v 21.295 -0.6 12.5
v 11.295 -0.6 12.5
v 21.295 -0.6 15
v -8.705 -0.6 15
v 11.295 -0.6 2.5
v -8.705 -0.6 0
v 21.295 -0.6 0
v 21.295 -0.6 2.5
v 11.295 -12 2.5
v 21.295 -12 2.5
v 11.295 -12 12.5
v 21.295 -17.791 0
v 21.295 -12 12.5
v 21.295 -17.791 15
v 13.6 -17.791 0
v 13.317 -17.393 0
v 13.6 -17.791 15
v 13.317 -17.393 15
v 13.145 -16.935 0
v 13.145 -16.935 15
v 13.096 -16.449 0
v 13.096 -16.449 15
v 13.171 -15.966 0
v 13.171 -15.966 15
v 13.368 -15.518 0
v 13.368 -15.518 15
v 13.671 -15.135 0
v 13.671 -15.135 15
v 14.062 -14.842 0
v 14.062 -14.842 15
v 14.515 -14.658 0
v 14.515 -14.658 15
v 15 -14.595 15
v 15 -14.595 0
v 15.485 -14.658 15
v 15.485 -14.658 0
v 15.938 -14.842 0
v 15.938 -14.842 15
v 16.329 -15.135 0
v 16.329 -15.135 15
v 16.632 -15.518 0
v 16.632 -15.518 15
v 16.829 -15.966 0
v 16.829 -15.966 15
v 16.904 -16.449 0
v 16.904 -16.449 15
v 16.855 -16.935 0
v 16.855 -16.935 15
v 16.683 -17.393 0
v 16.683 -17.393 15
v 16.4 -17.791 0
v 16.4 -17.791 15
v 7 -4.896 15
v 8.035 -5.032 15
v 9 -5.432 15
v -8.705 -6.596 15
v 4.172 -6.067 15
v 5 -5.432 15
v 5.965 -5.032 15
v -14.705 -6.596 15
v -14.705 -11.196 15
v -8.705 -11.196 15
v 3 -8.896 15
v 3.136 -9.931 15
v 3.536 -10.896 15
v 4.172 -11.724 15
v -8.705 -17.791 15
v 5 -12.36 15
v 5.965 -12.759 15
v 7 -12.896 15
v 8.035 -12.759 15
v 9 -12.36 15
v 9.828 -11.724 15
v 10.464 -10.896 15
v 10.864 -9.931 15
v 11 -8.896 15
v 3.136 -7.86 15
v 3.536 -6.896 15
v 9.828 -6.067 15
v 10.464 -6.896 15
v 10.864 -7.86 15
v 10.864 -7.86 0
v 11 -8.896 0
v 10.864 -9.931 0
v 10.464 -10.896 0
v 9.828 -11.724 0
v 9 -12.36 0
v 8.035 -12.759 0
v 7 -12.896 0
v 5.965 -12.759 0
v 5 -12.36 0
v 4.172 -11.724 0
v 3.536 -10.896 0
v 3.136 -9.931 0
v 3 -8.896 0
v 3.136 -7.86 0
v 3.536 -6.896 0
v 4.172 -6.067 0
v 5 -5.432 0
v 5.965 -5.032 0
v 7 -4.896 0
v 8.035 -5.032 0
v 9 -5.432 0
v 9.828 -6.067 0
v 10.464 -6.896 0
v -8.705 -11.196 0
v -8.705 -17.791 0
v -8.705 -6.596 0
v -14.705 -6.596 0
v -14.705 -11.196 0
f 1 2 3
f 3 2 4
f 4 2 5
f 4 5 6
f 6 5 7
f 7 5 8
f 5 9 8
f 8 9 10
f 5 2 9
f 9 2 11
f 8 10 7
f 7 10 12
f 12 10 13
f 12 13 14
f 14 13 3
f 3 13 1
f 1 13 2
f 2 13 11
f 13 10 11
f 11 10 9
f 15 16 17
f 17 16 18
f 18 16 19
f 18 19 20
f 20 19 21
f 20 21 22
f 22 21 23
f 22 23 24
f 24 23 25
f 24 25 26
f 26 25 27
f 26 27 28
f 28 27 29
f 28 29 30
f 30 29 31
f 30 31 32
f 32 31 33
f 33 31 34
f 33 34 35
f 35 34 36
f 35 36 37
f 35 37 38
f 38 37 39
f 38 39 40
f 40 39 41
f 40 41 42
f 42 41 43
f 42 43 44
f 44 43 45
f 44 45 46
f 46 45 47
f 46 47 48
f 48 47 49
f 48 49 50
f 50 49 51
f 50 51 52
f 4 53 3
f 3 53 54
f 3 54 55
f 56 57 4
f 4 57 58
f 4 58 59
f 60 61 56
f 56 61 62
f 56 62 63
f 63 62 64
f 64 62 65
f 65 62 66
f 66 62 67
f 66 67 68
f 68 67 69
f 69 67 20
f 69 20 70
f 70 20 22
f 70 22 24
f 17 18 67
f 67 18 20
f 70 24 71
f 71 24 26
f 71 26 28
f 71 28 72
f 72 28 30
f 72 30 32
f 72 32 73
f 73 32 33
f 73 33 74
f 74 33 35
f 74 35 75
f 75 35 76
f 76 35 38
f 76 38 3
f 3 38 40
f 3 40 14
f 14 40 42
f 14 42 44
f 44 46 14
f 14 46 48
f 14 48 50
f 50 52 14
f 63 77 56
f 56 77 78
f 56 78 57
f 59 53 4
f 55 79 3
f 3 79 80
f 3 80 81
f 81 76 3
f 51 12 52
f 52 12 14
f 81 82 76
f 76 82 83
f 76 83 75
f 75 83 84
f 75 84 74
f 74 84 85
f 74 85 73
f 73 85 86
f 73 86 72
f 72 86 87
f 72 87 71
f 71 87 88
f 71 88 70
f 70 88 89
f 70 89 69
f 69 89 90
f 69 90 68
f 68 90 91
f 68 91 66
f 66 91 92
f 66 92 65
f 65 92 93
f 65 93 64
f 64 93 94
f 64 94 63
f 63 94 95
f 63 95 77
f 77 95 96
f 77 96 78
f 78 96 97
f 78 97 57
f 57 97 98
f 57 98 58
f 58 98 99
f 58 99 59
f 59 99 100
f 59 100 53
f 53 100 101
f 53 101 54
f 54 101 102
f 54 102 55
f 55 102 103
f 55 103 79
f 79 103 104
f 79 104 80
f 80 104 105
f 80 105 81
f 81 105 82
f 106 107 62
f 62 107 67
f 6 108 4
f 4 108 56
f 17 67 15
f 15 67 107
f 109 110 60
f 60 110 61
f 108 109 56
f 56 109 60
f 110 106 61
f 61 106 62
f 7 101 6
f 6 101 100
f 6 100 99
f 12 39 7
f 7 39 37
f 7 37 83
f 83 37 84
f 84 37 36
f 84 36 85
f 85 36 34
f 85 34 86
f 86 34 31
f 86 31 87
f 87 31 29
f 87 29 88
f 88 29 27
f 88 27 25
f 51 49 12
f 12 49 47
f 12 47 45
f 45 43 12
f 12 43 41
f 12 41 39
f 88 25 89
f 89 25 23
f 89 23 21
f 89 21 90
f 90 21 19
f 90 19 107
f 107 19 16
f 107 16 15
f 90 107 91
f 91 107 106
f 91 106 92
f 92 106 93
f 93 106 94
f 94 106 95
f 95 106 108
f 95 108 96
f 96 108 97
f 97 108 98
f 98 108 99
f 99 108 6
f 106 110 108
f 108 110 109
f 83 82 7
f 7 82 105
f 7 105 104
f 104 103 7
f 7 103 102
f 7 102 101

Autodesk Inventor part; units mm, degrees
ref_plane "YZ Plane" through (0, 0, 0) normal (1, 0, 0) x (0, 1, 0)
ref_plane "XZ Plane" through (0, 0, 0) normal (0, 1, 0) x (-1, 0, 0)
ref_plane "XY Plane" through (0, 0, 0) normal (0, 0, 1) x (1, 0, 0)
ref_plane "Work Plane1" through (0, 0, 0) normal (0, 0, 1) x (1, 0, 0)
sketch "Sketch1" plane through (0, 0, 0) normal (0, 0, 1) x (1, 0, 0)
  circle A0 centre (7, -8.8957) radius 4 projected
  circle A1 centre (-2.136, 8.8957) radius 4 construction
  line L0 (-8.905, 18.405) -> (-8.905, 11.3957) construction
  line L1 (-8.905, 11.3957) -> (-14.905, 11.3957) construction
  line L2 (-14.905, 11.3957) -> (-14.905, 6.3957) construction
  line L3 (-14.905, 6.3957) -> (-8.905, 6.3957) construction
  line L4 (-8.905, 6.3957) -> (-8.905, -6.3957) construction
  line L5 (-8.905, -6.3957) -> (-14.905, -6.3957) construction
  line L6 (-14.905, -6.3957) -> (-14.905, -11.3957) construction
  line L7 (-14.905, -11.3957) -> (-8.905, -11.3957) construction
  line L8 (-8.905, -11.3957) -> (-8.905, -18.405) construction
  line L9 (-8.905, -18.405) -> (15, -18.405) construction
  circle A2 centre (15, -16.5) radius 1.905 construction
  line L10 (15, -18.405) -> (34, -18.405) construction
  line L11 (34, 18.405) -> (34, -18.405) construction
  line L12 (34, 18.405) -> (15, 18.405) construction
  circle A3 centre (15, 16.5) radius 1.905 construction
  line L13 (15, 18.405) -> (-8.905, 18.405) construction
  arc A4 (13.5995, 17.7914) -> (16.4005, 17.7914) centre (15, 16.5) ccw construction
  line L14 (13.5995, 17.7914) -> (-8.705, 17.7914) construction
  line L15 (-8.705, 17.7914) -> (-8.705, 11.1957) construction
  line L16 (-8.705, 11.1957) -> (-14.705, 11.1957) construction
  line L17 (-14.705, 11.1957) -> (-14.705, 6.5957) construction
  line L18 (-14.705, 6.5957) -> (-8.705, 6.5957) construction
  line L19 (-8.705, 6.5957) -> (-8.705, 0) construction
  line L20 (-8.705, 0) -> (21.295, 0) construction
  line L21 (21.295, 0) -> (21.295, 17.7914) construction
  line L22 (21.295, 17.7914) -> (16.4005, 17.7914) construction
  circle A5 centre (-2.136, 8.8957) radius 4 construction
  circle A6 centre (7, -8.8957) radius 4 construction
  line L23 (-14.705, -11.1957) -> (-8.705, -11.1957)
  line L24 (-8.705, -11.1957) -> (-8.705, -6.5957)
  line L25 (-8.705, -6.5957) -> (-14.705, -6.5957)
  line L26 (-14.705, -6.5957) -> (-14.705, -11.1957)
  line L27 (-8.705, -17.7914) -> (21.295, -17.7914)
  line L28 (21.295, -17.7914) -> (21.295, 0)
  line L29 (21.295, 0) -> (-8.705, 0)
  line L30 (-8.705, 0) -> (-8.705, -17.7914)
  point P0 (0, 0)
  point P1 (-8.705, -8.8957)
  dimension "d0" = 0.2
extrude "Extrusion1" add sketch "Sketch1" along normal blind 15
sketch "Sketch2" plane through (0, 0, 15) normal (0, 0, 1) x (1, 0, 0)
  circle A0 centre (15, -16.5) radius 1.905 projected
  point P0 (0, 0)
extrude "Extrusion2" cut sketch "Sketch2" against normal through all
sketch "Sketch3" plane through (21.295, -17.7914, 0) normal (1, 0, 0) x (0, 0, -1)
  line L0 (0, 0) -> (0, 17.7914) construction
  line L1 (0, 17.7914) -> (-15, 17.7914) construction
  line L2 (-15, 0) -> (-15, 17.7914) construction
  line L3 (0, 0) -> (-15, 0) construction
  line L4 (-18.5, 17.7914) -> (-28.5, 17.7914) construction
  line L5 (-18.5, 29.7914) -> (-18.5, 17.7914) construction
  line L6 (-28.5, 29.7914) -> (-18.5, 29.7914) construction
  line L7 (-28.5, 17.7914) -> (-28.5, 29.7914) construction
  line L8 (-2.5, 5.7914) -> (-12.5, 5.7914)
  line L9 (-12.5, 5.7914) -> (-12.5, 17.7914)
  line L10 (-12.5, 17.7914) -> (-2.5, 17.7914)
  line L11 (-2.5, 17.7914) -> (-2.5, 5.7914)
  point P0 (0, 17.7914)
  point P1 (-7.5, 17.7914)
extrude "Extrusion3" cut sketch "Sketch3" against normal blind 10
sketch "Sketch4" plane through (-8.705, 0, 0) normal (0, 1, 0) x (1, 0, 0)
  line L0 (30, -12.5) -> (20, -12.5) projected
  line L1 (20, -12.5) -> (20, -2.5) projected
  line L2 (20, -2.5) -> (30, -2.5) projected
  line L3 (30, 0) -> (30, -2.5) projected
  line L4 (30, 0) -> (0, 0) projected
  line L5 (0, 0) -> (0, -15) projected
  line L6 (30, -15) -> (0, -15) projected
  line L7 (30, -12.5) -> (30, -15) projected
  point P0 (8.705, 0)
extrude "Extrusion4" cut sketch "Sketch4" against normal blind 0.6
properties part number "long selector"
